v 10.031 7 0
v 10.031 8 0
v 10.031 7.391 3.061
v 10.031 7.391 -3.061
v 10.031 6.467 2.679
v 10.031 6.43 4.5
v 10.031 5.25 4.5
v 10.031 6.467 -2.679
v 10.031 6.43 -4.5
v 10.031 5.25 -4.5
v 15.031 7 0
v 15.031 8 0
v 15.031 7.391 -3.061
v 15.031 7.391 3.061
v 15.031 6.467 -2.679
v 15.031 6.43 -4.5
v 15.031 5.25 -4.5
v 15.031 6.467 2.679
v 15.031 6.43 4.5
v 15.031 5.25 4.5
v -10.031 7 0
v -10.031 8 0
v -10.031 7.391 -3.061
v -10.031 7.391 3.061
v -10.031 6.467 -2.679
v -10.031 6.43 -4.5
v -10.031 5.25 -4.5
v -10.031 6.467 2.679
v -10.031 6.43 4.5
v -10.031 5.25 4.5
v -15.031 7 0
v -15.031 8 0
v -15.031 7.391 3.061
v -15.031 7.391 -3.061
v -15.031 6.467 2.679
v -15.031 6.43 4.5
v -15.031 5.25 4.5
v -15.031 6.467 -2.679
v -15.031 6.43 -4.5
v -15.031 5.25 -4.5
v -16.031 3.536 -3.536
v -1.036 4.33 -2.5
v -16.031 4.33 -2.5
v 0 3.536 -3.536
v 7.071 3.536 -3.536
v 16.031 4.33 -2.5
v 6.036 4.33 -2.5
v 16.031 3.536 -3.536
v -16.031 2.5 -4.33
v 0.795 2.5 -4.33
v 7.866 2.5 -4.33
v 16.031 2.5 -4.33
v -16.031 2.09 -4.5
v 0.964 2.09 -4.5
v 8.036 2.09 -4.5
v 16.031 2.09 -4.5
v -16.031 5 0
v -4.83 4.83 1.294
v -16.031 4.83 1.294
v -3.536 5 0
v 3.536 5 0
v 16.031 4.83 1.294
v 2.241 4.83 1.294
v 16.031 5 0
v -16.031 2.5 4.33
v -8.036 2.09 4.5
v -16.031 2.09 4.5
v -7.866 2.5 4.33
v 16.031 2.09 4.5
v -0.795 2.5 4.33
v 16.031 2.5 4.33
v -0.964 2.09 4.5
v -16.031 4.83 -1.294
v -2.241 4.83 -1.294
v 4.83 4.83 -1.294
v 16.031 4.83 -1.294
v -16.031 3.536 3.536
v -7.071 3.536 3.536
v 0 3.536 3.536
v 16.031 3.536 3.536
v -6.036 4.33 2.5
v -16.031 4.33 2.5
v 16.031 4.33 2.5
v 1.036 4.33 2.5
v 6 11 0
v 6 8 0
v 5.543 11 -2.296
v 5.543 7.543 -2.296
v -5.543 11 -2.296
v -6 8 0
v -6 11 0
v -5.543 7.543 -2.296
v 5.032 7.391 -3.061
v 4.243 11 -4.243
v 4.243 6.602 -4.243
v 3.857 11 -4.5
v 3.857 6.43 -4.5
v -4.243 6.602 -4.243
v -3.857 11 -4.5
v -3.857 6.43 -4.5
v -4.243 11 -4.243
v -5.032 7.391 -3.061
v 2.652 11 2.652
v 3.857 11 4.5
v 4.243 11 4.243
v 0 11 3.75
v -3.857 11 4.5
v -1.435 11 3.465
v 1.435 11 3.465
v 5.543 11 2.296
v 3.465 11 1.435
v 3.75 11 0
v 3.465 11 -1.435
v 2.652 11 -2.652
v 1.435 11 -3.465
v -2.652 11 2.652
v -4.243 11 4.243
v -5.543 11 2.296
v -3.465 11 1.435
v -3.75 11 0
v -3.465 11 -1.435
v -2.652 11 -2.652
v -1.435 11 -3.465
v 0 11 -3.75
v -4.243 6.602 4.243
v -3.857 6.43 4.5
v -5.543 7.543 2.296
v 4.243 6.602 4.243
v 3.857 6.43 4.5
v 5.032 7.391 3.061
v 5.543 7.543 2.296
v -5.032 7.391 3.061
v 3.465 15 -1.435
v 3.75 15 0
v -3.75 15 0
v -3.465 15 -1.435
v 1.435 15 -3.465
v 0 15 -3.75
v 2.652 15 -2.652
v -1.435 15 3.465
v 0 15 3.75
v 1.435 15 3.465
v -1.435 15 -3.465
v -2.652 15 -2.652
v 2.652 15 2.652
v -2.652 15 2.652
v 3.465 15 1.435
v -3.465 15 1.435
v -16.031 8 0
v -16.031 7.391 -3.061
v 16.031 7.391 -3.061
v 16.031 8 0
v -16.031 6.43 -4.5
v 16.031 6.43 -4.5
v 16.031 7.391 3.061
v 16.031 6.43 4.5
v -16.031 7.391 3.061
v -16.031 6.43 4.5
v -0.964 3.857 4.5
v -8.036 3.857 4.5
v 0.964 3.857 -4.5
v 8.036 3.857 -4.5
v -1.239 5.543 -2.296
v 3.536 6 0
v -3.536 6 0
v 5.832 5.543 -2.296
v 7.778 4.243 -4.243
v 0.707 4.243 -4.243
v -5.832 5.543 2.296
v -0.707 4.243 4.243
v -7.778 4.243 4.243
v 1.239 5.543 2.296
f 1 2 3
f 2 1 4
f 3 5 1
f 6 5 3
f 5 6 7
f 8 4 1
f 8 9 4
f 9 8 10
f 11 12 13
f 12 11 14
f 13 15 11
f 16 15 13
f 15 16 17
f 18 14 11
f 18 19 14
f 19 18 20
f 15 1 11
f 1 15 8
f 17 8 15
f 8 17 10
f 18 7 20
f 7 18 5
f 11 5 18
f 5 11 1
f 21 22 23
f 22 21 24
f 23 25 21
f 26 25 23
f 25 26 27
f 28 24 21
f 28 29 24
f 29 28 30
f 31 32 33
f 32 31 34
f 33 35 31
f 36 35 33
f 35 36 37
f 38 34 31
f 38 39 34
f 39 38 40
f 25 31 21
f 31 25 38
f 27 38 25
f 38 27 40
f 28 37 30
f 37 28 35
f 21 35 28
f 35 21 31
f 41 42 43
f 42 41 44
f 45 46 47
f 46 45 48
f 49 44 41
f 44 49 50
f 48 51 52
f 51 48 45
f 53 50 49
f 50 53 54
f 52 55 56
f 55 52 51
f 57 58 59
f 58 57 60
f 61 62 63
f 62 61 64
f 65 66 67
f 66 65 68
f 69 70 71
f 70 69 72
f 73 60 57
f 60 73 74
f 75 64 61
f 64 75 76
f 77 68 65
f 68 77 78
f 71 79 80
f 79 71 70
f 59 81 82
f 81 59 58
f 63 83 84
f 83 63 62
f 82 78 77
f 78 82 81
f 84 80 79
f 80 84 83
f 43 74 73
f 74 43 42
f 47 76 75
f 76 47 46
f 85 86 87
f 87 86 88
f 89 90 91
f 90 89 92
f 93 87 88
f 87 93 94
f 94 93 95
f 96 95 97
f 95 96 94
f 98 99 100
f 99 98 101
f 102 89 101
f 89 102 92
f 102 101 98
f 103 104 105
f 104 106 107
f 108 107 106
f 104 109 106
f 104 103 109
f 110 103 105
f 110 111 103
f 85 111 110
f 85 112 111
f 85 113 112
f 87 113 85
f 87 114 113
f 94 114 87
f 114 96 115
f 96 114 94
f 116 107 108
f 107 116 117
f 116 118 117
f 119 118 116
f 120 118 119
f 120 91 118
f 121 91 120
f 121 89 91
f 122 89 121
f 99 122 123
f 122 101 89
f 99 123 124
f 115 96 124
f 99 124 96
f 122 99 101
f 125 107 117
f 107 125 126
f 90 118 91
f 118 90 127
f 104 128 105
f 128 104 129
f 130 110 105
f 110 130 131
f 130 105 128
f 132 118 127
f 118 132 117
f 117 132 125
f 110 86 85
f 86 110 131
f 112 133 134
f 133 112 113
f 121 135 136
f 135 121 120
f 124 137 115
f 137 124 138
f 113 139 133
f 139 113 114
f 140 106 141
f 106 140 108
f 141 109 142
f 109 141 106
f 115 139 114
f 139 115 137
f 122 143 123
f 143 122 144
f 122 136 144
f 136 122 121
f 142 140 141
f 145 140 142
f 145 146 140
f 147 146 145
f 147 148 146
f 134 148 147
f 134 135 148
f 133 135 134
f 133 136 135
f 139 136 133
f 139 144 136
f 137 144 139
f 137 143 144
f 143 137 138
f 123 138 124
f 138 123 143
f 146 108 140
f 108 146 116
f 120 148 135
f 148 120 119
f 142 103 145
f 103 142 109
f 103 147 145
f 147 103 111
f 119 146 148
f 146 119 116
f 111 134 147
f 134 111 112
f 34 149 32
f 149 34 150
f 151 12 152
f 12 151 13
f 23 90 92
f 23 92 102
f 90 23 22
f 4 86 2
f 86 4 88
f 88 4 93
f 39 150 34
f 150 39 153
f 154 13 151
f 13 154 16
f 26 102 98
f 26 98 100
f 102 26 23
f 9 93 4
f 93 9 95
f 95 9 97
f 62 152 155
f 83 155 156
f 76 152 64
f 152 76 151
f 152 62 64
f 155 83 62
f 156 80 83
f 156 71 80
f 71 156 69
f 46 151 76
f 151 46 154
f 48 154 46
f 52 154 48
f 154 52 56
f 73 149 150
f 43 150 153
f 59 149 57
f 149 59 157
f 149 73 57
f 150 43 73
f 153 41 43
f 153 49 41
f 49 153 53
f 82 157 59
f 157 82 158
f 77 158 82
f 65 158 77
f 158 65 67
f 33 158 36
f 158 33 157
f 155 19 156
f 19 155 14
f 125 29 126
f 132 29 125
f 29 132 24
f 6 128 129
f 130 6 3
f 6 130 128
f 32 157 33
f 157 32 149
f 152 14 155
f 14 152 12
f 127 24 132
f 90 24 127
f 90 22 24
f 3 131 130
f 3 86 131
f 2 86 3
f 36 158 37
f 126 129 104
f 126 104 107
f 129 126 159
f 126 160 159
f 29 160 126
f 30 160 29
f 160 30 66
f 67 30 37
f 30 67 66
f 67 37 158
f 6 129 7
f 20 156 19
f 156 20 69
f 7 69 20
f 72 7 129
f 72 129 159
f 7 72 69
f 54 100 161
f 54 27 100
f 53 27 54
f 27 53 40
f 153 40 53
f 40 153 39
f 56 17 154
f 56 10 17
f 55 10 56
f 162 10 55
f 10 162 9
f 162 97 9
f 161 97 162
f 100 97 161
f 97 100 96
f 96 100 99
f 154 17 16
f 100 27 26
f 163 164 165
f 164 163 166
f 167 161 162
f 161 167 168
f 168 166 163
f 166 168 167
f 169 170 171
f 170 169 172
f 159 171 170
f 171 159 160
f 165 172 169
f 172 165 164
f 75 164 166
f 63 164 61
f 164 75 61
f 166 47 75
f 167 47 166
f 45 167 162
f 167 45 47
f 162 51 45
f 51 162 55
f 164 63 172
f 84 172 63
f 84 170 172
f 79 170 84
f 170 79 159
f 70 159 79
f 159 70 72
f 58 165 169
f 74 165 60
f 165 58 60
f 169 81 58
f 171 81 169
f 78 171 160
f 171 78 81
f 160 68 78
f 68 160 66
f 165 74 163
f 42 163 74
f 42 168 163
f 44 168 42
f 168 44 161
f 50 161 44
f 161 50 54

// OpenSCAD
/* Mount for clipping the loose tubes to the inside of the rack
(c) Richard Bowman 2016, released under CERN open hardware license.
*/

use <utilities.scad>;
d=0.05;
$fn=16;

tube_r = 22+0.5+3; //radius of large tube
tube_to_rack = 3; //separation between 
rack_r = 5;
tube_centre = [0,tube_r+rack_r+tube_to_rack,0];
h = 2*rack_r - 1;
angle_subtended = 90;
w = sin(angle_subtended/2) * tube_r * 2 - 4;
hook_t = 3;

module annulus(inner_r,thickness,h,center=false){
	difference(){
		cylinder(r=inner_r+thickness,h=h,center=center);
		cylinder(r=inner_r,h=99999,center=true);
	}
}
module cable_tie(inner_r,center=false,h=5){
	annulus(inner_r+2,2,h,center=center);
}


difference(){
    intersection(){    
        union(){
            //this bit mounts to the strut
            rotate([0,90,0]) cylinder(r=rack_r+tube_to_rack,h=w,center=true);
            //this bit fits on the tube (the M8 counterbore)
            rotate([-90,0,0]){
                cylinder(d=12, h=tube_to_rack+8);
                cylinder(d=7.5, h=tube_to_rack+8+4);
            }
        }
        //crop in Z so we can print it!
        translate([0,1+999/2,0]) cube([w,999,h], center=true);

    }
    //rack
    rotate([0,90,0]){
        cylinder(r=rack_r, h=999,center=true, $fn=24);
        reflect([0,0,1]) translate([0,0,w/2-6]) cable_tie(rack_r);
    }
    //cable tie for velcro
    rotate([0,90,0]) intersection(){
        cylinder(r=rack_r+1, h=999, center=true);
        rotate([0,-45,0]) cube([999,999,5], center=true);
    }
}
